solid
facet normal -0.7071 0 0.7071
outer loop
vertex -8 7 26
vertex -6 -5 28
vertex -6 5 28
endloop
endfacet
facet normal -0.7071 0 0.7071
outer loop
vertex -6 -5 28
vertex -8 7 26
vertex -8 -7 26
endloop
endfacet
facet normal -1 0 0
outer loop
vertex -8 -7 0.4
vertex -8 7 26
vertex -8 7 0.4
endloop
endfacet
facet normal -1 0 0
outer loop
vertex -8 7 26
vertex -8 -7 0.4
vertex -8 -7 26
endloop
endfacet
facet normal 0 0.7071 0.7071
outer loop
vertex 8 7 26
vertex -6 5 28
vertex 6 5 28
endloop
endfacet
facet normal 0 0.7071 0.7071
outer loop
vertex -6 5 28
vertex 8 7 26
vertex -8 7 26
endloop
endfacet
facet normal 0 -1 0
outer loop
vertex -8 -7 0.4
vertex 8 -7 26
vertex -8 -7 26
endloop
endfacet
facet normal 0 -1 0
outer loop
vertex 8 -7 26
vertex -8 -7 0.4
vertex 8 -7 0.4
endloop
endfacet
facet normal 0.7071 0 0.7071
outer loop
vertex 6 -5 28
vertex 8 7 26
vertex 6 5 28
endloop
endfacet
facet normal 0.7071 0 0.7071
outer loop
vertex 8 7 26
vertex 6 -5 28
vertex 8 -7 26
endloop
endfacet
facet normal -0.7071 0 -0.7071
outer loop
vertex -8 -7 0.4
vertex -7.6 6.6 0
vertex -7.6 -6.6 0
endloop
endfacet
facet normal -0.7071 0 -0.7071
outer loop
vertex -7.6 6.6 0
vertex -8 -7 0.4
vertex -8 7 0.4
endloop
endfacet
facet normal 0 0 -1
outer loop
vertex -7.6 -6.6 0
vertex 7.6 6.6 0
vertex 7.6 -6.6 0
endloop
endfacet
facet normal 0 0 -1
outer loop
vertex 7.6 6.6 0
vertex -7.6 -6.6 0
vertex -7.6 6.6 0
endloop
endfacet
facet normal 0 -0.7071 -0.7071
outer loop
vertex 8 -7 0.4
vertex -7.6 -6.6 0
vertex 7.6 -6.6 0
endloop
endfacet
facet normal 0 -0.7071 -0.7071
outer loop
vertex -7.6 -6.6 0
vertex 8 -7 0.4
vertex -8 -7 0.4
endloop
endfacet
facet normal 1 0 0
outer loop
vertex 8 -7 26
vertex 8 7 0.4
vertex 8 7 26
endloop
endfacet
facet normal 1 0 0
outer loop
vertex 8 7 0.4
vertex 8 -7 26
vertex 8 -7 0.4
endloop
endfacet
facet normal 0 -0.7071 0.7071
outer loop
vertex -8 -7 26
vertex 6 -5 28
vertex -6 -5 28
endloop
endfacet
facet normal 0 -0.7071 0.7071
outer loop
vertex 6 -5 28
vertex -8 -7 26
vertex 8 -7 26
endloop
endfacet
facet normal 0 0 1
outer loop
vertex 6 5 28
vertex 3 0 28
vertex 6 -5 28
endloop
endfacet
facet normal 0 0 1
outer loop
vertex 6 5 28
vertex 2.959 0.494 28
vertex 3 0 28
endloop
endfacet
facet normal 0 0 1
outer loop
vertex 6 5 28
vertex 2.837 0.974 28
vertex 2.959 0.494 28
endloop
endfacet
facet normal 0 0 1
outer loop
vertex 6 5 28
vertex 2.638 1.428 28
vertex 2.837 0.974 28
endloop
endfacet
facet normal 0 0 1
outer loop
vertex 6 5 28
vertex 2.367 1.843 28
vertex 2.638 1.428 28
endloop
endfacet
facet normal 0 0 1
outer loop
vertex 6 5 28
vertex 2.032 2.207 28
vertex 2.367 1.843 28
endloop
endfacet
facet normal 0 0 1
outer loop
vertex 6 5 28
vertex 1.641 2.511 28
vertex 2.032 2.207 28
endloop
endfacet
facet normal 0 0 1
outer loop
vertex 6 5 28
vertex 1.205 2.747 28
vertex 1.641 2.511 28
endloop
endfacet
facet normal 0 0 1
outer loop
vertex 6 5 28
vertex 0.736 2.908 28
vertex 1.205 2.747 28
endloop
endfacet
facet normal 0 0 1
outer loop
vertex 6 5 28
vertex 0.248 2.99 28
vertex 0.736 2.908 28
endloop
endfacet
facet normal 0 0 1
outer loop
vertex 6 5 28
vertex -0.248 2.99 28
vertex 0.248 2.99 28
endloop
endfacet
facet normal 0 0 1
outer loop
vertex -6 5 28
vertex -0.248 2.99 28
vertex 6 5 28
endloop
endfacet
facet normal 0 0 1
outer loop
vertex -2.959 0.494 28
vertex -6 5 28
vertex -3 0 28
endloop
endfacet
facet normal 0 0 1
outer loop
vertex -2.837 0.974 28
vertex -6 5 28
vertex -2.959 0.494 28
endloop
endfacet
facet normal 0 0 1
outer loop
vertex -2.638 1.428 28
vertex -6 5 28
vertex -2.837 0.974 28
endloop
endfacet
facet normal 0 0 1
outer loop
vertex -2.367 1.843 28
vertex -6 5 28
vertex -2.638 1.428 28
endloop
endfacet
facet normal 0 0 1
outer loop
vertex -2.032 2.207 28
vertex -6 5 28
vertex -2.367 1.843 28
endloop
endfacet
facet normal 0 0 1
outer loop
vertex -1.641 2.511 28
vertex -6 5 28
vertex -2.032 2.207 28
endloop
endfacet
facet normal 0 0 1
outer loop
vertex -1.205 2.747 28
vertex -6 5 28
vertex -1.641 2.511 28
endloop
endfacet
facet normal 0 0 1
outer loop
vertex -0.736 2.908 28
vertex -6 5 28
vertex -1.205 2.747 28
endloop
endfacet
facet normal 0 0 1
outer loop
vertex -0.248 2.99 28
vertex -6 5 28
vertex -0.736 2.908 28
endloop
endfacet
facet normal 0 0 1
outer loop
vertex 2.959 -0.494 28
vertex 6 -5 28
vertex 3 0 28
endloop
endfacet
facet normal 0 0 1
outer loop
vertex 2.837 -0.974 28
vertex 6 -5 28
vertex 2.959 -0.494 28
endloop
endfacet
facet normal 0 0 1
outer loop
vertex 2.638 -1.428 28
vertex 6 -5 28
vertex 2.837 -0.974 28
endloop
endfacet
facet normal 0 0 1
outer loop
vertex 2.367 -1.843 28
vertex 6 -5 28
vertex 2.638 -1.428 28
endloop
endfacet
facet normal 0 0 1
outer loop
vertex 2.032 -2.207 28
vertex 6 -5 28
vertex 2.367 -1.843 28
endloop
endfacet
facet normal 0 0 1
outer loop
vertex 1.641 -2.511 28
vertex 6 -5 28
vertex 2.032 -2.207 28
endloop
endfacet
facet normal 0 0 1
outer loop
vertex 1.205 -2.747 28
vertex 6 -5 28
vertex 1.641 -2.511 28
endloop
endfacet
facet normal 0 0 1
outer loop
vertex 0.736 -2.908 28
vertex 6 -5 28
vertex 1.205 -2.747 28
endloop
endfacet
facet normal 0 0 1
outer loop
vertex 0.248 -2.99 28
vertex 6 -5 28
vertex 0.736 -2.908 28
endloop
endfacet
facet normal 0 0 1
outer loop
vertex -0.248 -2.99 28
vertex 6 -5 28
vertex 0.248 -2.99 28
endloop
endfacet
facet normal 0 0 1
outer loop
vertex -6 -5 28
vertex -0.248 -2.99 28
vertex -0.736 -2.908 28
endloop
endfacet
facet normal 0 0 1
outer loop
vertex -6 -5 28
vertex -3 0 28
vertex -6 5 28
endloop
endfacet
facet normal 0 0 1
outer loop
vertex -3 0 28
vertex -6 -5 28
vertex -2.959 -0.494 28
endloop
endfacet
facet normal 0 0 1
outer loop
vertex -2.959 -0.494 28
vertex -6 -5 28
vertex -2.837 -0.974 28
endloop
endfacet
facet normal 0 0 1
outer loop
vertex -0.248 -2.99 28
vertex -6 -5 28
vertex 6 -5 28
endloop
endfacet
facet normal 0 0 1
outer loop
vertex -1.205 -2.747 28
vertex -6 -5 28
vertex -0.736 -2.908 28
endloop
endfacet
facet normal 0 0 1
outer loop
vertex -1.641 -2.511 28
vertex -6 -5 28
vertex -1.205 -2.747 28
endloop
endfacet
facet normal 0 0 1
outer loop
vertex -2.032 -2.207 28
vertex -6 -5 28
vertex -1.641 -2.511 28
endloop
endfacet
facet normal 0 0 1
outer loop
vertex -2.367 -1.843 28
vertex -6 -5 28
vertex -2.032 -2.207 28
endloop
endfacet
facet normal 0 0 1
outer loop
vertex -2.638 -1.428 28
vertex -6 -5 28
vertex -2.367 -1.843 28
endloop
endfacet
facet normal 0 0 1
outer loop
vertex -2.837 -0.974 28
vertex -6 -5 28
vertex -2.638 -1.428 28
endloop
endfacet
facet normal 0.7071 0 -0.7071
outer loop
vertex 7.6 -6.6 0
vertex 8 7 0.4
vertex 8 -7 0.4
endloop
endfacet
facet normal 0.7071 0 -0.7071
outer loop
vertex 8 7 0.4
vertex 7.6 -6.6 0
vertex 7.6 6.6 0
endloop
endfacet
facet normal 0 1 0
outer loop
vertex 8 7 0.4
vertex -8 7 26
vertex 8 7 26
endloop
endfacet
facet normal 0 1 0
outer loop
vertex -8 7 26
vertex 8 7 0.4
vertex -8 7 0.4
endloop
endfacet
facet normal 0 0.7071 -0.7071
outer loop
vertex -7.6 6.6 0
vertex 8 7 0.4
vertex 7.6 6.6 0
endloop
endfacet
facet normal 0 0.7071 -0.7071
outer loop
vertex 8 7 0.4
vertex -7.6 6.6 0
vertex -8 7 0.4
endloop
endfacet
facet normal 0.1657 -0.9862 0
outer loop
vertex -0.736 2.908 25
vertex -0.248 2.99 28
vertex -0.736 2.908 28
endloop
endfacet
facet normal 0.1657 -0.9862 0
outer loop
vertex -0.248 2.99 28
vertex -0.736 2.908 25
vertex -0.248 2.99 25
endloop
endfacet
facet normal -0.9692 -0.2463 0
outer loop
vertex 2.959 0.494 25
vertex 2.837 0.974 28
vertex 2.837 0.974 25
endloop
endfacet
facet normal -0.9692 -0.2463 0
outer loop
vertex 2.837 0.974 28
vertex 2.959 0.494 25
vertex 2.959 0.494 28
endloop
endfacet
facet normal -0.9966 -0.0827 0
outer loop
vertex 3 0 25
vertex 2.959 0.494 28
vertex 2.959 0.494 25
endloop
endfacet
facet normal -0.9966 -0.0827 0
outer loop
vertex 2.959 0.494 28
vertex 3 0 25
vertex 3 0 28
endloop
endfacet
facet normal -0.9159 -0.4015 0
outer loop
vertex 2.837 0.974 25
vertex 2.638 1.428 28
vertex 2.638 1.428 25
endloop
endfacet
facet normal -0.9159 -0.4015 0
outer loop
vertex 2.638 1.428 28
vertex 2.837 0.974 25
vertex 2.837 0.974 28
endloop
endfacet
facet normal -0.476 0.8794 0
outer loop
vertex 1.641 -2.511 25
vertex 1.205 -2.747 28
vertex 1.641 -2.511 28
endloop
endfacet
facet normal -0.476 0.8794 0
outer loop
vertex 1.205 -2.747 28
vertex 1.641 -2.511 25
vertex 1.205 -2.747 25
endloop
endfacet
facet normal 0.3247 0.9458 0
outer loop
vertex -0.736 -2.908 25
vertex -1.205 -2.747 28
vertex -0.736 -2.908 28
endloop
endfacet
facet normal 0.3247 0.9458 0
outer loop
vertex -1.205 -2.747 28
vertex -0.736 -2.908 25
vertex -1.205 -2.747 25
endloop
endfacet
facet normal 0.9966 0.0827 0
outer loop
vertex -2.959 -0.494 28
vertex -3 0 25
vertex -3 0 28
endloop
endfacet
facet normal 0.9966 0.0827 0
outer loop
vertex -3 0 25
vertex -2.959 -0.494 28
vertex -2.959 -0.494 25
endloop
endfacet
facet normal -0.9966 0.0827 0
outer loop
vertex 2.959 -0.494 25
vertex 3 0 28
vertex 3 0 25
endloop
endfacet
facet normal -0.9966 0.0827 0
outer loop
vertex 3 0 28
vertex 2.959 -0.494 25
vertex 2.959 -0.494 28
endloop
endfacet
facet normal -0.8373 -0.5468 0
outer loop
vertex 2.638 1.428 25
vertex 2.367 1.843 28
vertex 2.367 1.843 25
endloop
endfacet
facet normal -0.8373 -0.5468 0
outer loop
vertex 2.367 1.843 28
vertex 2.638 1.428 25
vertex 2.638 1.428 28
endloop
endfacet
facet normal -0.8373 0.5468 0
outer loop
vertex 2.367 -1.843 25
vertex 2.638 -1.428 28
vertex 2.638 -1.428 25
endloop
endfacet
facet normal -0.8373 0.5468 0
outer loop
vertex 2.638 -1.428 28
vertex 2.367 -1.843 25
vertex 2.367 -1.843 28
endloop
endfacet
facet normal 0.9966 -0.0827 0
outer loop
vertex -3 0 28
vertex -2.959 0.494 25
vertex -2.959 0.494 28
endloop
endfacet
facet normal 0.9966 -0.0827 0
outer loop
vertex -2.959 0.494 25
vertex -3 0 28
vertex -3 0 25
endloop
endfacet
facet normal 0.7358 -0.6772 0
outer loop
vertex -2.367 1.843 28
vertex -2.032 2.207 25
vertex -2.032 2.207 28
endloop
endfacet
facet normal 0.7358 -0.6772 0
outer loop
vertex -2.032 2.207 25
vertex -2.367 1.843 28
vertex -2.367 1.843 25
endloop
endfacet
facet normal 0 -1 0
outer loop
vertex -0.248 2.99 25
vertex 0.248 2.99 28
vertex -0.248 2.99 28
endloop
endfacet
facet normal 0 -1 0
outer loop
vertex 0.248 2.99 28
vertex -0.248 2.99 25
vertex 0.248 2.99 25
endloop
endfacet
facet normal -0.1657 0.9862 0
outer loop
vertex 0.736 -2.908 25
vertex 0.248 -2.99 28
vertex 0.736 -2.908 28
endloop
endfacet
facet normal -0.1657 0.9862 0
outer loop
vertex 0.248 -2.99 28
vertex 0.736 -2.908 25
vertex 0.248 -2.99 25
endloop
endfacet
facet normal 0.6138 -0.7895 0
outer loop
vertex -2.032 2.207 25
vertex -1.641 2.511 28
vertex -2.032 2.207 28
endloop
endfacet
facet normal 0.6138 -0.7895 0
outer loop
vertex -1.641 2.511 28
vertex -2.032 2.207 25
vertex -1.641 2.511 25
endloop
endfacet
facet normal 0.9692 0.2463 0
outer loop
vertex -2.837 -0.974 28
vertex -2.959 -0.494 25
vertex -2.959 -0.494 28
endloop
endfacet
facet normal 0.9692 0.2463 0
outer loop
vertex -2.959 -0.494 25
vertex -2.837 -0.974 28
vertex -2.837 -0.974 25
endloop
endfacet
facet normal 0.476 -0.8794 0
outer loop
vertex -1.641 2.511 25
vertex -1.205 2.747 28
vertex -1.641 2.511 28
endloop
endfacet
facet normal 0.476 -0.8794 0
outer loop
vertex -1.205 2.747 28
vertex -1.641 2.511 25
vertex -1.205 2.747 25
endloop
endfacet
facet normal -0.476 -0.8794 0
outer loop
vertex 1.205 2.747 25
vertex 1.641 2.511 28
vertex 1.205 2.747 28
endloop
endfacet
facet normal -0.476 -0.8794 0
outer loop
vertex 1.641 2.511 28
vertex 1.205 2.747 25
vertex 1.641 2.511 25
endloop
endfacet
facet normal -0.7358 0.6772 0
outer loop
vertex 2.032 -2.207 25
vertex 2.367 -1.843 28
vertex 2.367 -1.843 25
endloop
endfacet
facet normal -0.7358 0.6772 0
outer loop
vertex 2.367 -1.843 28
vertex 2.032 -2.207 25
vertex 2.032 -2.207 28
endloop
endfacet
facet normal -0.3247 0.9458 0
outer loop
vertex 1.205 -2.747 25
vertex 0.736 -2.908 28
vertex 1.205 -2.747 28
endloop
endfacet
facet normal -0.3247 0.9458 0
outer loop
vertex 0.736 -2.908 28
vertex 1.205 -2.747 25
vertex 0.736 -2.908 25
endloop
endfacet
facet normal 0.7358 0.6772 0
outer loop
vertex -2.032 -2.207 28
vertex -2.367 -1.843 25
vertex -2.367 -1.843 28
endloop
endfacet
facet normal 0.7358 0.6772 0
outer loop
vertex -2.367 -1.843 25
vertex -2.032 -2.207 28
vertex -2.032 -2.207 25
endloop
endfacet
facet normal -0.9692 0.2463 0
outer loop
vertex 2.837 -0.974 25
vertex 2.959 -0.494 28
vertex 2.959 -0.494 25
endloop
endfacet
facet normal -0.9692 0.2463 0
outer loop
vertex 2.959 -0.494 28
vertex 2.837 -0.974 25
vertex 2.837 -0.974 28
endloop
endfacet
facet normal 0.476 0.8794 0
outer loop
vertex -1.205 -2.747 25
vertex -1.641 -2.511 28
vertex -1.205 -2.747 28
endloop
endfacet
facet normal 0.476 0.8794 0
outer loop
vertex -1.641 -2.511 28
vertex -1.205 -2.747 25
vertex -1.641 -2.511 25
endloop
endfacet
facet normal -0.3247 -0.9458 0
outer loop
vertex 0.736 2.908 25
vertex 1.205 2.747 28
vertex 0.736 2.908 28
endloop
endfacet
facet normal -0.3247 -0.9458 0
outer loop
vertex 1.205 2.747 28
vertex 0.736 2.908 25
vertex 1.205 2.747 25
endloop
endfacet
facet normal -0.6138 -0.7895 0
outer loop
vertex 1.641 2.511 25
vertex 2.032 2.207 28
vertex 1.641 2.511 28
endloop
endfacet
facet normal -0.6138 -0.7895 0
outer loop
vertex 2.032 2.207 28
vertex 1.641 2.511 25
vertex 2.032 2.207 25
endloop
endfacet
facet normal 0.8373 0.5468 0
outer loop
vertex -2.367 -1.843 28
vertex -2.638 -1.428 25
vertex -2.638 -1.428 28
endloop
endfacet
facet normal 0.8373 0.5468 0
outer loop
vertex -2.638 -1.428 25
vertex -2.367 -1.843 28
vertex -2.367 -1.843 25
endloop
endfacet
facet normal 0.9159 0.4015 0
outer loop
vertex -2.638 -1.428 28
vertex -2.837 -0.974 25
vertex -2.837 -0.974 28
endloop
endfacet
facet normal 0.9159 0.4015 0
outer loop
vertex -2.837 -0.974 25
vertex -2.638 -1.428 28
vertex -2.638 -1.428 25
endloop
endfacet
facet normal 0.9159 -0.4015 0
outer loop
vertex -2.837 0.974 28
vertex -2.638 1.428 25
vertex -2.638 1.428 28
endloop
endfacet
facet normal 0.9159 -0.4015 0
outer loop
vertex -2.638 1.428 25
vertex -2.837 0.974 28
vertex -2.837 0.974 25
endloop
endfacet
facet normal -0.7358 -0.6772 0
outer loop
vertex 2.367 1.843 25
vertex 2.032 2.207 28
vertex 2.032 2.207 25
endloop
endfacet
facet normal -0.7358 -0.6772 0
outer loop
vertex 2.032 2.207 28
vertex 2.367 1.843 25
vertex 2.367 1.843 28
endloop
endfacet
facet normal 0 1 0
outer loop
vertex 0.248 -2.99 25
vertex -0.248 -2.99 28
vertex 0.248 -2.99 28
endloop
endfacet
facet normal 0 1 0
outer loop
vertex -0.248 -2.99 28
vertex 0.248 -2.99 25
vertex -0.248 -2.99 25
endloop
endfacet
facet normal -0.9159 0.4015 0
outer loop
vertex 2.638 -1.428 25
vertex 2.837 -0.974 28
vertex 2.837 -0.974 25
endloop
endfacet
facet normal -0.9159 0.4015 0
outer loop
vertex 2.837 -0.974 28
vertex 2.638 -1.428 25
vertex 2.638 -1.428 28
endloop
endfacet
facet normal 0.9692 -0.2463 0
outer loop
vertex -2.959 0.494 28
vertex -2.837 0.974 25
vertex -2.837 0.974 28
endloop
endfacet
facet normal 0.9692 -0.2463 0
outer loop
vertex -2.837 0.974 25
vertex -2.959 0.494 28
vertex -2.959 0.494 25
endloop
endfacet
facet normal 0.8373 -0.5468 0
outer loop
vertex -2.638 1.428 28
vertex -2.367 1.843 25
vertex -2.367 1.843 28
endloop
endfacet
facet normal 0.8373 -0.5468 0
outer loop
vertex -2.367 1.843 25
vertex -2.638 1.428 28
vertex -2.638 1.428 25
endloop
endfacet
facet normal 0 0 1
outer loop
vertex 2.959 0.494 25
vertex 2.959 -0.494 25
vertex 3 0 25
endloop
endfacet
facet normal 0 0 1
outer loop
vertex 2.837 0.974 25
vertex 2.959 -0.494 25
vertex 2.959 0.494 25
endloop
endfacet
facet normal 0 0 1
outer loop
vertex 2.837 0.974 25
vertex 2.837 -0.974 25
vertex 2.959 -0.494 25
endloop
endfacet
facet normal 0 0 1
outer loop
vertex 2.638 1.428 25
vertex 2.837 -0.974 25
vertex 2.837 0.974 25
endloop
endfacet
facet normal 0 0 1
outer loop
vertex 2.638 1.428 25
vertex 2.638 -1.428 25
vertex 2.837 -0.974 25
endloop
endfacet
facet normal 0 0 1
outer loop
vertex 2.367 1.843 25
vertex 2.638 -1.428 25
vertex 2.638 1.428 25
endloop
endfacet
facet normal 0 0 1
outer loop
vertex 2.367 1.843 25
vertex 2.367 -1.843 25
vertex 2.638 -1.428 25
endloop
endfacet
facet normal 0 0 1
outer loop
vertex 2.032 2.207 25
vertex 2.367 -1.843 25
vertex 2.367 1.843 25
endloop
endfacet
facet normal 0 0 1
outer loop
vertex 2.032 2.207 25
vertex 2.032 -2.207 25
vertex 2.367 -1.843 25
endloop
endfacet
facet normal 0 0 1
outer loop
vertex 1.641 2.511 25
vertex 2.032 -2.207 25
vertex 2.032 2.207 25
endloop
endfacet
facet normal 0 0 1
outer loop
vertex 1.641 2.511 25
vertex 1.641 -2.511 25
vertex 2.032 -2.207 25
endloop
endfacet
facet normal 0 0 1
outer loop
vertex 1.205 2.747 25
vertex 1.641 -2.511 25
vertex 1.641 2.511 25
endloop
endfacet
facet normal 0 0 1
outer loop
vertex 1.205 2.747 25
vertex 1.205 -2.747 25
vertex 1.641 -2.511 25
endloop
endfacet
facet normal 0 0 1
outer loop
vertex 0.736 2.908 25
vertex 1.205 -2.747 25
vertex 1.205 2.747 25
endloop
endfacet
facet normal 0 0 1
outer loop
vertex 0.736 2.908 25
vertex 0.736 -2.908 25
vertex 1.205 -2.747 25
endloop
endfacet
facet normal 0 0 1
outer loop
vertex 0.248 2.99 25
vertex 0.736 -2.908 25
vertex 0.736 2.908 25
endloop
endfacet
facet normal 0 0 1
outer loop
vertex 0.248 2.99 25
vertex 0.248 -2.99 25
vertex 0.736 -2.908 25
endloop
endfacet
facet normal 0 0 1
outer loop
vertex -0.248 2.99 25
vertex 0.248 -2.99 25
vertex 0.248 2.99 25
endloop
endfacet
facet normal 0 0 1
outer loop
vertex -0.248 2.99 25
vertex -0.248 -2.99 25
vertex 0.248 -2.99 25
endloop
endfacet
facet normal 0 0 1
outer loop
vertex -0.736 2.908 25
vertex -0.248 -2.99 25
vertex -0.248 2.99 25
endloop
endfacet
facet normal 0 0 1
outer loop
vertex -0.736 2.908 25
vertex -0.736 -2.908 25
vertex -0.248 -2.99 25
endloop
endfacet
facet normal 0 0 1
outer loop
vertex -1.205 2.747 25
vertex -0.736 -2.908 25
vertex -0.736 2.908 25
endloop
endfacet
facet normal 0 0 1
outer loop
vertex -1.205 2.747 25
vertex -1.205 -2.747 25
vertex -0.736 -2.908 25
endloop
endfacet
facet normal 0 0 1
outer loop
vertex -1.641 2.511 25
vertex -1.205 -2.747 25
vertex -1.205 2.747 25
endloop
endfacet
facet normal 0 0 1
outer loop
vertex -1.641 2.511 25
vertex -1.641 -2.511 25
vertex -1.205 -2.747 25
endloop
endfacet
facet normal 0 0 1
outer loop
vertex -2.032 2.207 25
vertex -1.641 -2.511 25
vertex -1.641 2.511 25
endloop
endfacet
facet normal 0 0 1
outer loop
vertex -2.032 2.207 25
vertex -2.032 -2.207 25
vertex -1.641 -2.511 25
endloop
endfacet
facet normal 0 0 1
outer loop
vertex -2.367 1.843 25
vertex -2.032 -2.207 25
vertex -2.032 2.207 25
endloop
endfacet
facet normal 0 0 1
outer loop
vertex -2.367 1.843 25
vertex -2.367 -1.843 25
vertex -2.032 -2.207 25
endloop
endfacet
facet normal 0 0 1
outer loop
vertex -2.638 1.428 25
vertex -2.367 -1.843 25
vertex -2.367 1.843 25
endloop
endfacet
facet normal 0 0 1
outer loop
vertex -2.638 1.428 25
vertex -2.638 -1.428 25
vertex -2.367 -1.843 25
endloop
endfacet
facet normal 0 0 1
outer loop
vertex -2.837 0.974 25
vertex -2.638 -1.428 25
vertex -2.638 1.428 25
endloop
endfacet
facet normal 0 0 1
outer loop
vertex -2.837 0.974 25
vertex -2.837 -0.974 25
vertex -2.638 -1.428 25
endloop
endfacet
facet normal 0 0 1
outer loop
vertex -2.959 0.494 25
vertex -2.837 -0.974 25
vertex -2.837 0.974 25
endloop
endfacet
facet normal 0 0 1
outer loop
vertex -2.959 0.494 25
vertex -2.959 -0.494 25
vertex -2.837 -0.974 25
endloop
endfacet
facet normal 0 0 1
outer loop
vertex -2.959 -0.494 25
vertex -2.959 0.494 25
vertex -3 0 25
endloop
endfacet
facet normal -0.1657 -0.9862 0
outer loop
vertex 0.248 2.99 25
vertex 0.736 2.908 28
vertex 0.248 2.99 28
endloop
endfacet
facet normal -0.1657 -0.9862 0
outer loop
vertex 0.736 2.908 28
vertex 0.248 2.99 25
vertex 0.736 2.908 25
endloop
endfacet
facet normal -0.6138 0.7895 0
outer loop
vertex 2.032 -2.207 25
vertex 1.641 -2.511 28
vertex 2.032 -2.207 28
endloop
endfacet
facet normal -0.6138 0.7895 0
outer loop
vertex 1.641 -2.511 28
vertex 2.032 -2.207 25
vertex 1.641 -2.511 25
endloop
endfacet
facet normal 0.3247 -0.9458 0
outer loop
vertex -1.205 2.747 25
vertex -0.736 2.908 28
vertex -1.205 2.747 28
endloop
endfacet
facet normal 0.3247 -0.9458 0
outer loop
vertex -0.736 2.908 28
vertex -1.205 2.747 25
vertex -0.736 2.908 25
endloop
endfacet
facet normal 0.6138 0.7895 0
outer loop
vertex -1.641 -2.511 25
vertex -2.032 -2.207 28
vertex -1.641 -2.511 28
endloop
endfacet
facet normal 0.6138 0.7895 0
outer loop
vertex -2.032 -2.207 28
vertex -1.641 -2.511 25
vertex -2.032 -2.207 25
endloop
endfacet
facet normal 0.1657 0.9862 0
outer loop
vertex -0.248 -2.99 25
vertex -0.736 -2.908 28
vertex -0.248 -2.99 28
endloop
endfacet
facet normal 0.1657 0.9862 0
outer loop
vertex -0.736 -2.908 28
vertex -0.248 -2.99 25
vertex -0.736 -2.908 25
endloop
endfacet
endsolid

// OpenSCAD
// sharps_box.scad - sharps safety box (design_brief.md 4.8). About the size of the hand rub
// bottle: 16 x 14 x 28. Body 26 high, the top tapers at 45 deg to a 12 x 10 face at 28 with a
// dia 6 opening 3 deep (2 mm wall to the edge). Single colour, yellow, prints upright.
// Export: openscad -o sharps_box.stl sharps_box.scad
include <common.scad>

length        = 16;
width         = 14;
body_h        = 26;
height        = 28;       // top face; the taper is (height - body_h) deep at 45 deg
opening_d     = 6;
opening_depth = 3;

module sharps_box() {
    t = height - body_h;
    band_colour(1) difference() {
        ring_stack([[length / 2 - chamfer_bottom, width / 2 - chamfer_bottom, 0],
                    [length / 2, width / 2, chamfer_bottom],
                    [length / 2, width / 2, body_h],
                    [length / 2 - t, width / 2 - t, height]]);
        translate([0, 0, height - opening_depth]) cylinder(d = opening_d, h = opening_depth + 1);
    }
}

sharps_box();
